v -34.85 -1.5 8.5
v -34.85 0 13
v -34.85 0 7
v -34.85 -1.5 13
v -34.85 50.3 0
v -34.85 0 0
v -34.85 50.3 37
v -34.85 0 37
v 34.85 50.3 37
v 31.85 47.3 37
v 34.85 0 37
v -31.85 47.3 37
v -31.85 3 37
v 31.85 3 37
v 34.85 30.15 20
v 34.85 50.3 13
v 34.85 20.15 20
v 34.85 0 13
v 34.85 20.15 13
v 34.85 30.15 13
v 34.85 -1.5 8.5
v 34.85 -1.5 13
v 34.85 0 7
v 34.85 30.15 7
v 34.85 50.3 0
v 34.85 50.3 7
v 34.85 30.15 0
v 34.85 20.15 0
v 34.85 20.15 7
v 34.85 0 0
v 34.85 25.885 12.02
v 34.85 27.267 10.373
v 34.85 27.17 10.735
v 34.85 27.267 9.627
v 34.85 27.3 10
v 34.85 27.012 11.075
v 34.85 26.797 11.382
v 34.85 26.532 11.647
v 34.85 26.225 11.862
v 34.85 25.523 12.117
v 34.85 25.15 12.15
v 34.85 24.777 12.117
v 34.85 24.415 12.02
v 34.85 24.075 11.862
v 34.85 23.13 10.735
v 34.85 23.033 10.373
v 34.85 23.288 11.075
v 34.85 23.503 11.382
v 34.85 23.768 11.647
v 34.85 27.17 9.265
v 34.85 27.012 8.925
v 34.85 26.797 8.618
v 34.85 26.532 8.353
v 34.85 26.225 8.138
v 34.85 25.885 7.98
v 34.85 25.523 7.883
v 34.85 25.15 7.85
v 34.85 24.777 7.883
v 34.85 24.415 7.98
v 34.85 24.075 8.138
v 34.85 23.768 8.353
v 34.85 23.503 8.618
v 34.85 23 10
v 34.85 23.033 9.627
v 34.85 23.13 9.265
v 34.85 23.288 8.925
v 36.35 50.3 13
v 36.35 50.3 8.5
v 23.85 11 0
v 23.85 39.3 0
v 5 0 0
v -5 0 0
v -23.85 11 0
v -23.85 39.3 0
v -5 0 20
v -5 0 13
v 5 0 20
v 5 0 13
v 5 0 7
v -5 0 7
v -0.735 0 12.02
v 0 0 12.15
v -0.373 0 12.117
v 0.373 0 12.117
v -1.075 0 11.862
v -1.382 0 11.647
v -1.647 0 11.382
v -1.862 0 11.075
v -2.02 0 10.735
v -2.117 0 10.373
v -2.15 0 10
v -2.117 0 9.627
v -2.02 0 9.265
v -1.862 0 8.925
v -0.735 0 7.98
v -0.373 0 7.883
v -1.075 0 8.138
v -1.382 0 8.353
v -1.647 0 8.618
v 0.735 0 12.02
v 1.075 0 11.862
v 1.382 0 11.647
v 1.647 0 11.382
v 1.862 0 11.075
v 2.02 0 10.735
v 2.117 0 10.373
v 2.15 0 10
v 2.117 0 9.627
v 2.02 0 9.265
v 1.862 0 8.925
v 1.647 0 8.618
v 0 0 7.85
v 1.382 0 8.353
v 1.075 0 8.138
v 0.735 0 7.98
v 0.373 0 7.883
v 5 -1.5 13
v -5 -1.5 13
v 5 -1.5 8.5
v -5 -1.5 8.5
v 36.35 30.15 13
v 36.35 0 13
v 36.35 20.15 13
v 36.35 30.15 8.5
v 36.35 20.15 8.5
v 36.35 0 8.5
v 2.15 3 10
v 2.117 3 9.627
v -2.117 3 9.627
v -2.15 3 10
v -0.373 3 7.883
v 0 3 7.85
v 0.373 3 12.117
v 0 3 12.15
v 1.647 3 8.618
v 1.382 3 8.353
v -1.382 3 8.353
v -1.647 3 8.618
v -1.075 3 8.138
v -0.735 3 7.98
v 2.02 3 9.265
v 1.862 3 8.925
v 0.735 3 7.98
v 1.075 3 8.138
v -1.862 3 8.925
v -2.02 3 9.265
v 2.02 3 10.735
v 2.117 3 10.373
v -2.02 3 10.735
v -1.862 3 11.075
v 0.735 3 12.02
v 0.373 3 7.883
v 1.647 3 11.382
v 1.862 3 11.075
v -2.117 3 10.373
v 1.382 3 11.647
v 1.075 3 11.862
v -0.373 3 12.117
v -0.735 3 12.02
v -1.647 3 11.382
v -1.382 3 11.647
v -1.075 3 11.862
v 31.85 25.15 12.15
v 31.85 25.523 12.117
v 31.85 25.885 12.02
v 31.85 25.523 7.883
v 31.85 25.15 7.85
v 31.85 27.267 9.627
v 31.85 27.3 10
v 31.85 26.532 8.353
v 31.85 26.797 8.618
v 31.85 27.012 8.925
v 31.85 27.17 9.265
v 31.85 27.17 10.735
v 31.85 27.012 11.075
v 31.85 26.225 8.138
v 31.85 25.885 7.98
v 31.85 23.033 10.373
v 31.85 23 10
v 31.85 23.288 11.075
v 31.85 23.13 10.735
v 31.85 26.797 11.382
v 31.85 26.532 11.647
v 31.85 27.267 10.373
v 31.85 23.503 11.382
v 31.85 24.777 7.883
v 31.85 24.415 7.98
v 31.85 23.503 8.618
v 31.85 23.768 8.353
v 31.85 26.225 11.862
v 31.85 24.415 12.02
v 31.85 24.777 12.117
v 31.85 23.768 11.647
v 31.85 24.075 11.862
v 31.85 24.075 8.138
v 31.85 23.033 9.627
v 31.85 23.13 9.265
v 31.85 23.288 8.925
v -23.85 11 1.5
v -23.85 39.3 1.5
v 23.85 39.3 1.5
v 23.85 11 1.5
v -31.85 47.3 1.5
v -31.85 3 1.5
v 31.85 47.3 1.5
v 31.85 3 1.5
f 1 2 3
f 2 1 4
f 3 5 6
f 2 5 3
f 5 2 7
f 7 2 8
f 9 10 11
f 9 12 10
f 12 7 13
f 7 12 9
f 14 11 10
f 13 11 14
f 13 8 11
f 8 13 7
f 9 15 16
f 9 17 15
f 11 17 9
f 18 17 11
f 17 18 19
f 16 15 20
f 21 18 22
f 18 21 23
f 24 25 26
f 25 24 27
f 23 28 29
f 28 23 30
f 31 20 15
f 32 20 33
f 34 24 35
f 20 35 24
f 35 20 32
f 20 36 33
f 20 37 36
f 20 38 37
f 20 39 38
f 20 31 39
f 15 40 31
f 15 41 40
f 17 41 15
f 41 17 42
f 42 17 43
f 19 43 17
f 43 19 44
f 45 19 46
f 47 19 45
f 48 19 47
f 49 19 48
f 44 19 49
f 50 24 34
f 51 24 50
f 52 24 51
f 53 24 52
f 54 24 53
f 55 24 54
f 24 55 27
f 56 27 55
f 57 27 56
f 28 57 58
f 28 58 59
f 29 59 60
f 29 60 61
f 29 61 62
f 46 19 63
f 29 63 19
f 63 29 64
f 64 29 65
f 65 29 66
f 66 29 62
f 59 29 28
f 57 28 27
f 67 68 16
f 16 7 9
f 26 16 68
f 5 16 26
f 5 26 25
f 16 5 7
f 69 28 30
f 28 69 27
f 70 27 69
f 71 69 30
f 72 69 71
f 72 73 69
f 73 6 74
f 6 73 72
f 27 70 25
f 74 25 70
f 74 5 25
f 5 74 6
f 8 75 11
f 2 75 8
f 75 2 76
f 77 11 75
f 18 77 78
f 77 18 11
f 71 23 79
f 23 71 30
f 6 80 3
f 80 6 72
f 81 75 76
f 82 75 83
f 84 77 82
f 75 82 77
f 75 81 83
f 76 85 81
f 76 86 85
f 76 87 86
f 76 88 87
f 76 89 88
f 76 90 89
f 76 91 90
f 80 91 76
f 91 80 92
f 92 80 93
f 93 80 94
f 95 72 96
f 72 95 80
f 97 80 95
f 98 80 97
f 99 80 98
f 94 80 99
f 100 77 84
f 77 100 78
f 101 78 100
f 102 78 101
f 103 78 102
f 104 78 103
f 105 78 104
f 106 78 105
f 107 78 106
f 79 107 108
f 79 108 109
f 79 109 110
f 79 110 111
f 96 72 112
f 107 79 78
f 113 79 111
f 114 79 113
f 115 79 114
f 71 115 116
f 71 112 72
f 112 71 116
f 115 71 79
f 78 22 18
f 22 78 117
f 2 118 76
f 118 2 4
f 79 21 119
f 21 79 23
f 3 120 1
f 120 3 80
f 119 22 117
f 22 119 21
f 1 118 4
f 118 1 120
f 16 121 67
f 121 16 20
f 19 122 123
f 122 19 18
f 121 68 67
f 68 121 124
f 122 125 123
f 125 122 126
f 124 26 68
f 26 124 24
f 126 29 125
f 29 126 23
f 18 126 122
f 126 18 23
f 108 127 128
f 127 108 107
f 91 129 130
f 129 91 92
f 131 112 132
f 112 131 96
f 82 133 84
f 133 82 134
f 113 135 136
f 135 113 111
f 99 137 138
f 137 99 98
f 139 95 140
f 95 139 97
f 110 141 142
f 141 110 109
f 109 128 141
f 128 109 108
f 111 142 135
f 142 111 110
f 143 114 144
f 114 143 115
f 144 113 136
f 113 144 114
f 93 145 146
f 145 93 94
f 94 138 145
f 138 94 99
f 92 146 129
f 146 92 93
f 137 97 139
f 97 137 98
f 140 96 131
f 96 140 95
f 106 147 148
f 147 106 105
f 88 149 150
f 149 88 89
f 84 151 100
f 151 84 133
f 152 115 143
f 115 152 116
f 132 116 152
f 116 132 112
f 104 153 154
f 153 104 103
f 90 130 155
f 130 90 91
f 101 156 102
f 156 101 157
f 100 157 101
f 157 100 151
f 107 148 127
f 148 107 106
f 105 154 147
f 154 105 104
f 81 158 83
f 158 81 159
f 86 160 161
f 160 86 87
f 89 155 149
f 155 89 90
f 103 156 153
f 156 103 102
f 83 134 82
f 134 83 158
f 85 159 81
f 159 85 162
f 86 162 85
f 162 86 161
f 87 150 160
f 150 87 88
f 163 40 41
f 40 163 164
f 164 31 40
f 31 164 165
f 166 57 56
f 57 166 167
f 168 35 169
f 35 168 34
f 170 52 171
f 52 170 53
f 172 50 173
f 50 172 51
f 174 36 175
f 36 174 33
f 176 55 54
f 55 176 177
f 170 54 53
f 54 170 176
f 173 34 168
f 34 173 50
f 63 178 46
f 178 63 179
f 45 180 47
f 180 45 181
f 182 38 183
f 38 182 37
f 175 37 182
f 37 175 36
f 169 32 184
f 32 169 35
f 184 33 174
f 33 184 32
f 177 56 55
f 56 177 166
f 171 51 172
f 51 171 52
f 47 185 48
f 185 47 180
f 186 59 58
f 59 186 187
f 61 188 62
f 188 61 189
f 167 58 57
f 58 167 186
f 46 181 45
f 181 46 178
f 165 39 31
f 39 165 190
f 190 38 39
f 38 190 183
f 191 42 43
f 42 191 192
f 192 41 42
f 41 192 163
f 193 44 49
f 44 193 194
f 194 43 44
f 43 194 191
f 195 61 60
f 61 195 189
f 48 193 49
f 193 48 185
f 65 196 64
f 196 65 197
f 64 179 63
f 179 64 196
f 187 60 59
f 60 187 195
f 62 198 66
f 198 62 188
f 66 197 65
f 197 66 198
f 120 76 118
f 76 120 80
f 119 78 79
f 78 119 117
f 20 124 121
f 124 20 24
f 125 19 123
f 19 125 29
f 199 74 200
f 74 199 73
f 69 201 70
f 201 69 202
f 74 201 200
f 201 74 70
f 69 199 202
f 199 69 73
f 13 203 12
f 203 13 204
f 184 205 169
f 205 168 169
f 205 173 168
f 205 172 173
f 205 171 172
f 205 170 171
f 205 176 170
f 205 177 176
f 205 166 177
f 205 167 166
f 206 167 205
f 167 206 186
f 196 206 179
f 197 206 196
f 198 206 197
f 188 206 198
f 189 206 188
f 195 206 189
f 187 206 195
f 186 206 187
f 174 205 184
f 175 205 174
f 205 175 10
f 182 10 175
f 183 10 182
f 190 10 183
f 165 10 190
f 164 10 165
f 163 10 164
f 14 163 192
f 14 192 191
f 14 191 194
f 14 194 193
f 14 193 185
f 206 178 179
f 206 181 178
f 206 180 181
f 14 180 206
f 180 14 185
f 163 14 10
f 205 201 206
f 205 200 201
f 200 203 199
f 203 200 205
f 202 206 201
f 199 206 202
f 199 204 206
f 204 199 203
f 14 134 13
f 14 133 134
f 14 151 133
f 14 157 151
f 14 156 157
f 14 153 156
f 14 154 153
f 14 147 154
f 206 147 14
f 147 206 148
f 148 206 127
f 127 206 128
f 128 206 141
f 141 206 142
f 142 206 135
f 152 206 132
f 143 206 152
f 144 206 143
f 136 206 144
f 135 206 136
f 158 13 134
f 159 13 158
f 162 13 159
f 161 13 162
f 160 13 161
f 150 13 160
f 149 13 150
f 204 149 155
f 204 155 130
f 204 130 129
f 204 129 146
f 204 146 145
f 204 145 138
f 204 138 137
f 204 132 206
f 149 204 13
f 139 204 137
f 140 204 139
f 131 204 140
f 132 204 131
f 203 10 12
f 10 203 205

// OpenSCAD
$fn=36;

rail_height=20; //2020 rail
slot_width=6;
notch_depth=1.5;
rail_screw_diameter=4.3; //M4 + margin


slot_nut_length=10;

switch_height = 47.7;
switch_width = 28.3;
switch_margin = 8;

bracket_thickness=3;
bottom_thickness=1.5;

bracket_length=switch_height+2*switch_margin+2*bracket_thickness;
bracket_width=switch_width+2*switch_margin+2*bracket_thickness;

wall_height=37;

e=0.01;


difference() {
    union() {
        
       //Base parts of bracket
       translate([-bracket_length/2,0,0]) {
           cube([bracket_length, bracket_width, wall_height]); 
       }

       //Notch into rail
       notch_points=[[0,-slot_width/2],[notch_depth,-slot_width/2+notch_depth],[notch_depth,slot_width/2],[0,slot_width/2]];
       notch_path=[[0,1,2,3,0]];
       
       translate([bracket_length/2,0,rail_height/2]) rotate([90,0,-90])  linear_extrude(height=bracket_length) polygon(points=notch_points, paths=notch_path, convexity=2);

       translate([bracket_length/2,bracket_width,rail_height/2]) rotate([90,0,0])  linear_extrude(height=bracket_width) polygon(points=notch_points, paths=notch_path, convexity=2);
       
    }
    
    union() {
        //Holes for mounting bolts to rail
        translate([0, -e, rail_height/2]) rotate([-90,0,0]) cylinder(d=rail_screw_diameter, h=bracket_thickness+2*e);
        translate([bracket_length/2+e, bracket_width/2, rail_height/2]) rotate([0,-90,0]) cylinder(d=rail_screw_diameter, h=bracket_thickness+2*e);
        
        
        //Cutout in notch for slot nuts
        translate([-slot_nut_length/2,-notch_depth-e,0]) cube([slot_nut_length,notch_depth+e,rail_height]);
        
        translate([bracket_length/2,bracket_width/2-slot_nut_length/2,0]) cube([notch_depth+e,slot_nut_length,rail_height]);

        //Power switch hole
        translate([-switch_height/2,bracket_thickness+switch_margin, -e]) cube([switch_height, switch_width,wall_height+2*e]);
        translate([-switch_height/2-switch_margin,bracket_thickness, bottom_thickness]) cube([switch_height+2*switch_margin, switch_width+2*switch_margin,wall_height+e]);
    }
}
